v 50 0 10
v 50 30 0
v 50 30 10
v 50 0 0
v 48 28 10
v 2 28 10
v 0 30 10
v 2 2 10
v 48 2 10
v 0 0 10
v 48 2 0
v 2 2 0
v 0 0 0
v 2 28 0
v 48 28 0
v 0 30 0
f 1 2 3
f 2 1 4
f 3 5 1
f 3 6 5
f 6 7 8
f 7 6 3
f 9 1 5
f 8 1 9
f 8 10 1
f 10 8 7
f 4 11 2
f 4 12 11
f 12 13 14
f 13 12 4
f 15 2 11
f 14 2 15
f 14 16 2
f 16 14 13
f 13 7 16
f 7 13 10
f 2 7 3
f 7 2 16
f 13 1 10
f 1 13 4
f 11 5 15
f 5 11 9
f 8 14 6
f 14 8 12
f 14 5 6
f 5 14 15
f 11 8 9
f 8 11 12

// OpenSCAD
module channel(width, depth, height, wall_thickness) {
    difference() {
        cube([width, depth, height]);
        translate([wall_thickness, wall_thickness, 0])
        cube([width - 2 * wall_thickness, depth - 2 * wall_thickness, height]);
    }
}

channel(width = 50, depth = 30, height = 10, wall_thickness = 2);
